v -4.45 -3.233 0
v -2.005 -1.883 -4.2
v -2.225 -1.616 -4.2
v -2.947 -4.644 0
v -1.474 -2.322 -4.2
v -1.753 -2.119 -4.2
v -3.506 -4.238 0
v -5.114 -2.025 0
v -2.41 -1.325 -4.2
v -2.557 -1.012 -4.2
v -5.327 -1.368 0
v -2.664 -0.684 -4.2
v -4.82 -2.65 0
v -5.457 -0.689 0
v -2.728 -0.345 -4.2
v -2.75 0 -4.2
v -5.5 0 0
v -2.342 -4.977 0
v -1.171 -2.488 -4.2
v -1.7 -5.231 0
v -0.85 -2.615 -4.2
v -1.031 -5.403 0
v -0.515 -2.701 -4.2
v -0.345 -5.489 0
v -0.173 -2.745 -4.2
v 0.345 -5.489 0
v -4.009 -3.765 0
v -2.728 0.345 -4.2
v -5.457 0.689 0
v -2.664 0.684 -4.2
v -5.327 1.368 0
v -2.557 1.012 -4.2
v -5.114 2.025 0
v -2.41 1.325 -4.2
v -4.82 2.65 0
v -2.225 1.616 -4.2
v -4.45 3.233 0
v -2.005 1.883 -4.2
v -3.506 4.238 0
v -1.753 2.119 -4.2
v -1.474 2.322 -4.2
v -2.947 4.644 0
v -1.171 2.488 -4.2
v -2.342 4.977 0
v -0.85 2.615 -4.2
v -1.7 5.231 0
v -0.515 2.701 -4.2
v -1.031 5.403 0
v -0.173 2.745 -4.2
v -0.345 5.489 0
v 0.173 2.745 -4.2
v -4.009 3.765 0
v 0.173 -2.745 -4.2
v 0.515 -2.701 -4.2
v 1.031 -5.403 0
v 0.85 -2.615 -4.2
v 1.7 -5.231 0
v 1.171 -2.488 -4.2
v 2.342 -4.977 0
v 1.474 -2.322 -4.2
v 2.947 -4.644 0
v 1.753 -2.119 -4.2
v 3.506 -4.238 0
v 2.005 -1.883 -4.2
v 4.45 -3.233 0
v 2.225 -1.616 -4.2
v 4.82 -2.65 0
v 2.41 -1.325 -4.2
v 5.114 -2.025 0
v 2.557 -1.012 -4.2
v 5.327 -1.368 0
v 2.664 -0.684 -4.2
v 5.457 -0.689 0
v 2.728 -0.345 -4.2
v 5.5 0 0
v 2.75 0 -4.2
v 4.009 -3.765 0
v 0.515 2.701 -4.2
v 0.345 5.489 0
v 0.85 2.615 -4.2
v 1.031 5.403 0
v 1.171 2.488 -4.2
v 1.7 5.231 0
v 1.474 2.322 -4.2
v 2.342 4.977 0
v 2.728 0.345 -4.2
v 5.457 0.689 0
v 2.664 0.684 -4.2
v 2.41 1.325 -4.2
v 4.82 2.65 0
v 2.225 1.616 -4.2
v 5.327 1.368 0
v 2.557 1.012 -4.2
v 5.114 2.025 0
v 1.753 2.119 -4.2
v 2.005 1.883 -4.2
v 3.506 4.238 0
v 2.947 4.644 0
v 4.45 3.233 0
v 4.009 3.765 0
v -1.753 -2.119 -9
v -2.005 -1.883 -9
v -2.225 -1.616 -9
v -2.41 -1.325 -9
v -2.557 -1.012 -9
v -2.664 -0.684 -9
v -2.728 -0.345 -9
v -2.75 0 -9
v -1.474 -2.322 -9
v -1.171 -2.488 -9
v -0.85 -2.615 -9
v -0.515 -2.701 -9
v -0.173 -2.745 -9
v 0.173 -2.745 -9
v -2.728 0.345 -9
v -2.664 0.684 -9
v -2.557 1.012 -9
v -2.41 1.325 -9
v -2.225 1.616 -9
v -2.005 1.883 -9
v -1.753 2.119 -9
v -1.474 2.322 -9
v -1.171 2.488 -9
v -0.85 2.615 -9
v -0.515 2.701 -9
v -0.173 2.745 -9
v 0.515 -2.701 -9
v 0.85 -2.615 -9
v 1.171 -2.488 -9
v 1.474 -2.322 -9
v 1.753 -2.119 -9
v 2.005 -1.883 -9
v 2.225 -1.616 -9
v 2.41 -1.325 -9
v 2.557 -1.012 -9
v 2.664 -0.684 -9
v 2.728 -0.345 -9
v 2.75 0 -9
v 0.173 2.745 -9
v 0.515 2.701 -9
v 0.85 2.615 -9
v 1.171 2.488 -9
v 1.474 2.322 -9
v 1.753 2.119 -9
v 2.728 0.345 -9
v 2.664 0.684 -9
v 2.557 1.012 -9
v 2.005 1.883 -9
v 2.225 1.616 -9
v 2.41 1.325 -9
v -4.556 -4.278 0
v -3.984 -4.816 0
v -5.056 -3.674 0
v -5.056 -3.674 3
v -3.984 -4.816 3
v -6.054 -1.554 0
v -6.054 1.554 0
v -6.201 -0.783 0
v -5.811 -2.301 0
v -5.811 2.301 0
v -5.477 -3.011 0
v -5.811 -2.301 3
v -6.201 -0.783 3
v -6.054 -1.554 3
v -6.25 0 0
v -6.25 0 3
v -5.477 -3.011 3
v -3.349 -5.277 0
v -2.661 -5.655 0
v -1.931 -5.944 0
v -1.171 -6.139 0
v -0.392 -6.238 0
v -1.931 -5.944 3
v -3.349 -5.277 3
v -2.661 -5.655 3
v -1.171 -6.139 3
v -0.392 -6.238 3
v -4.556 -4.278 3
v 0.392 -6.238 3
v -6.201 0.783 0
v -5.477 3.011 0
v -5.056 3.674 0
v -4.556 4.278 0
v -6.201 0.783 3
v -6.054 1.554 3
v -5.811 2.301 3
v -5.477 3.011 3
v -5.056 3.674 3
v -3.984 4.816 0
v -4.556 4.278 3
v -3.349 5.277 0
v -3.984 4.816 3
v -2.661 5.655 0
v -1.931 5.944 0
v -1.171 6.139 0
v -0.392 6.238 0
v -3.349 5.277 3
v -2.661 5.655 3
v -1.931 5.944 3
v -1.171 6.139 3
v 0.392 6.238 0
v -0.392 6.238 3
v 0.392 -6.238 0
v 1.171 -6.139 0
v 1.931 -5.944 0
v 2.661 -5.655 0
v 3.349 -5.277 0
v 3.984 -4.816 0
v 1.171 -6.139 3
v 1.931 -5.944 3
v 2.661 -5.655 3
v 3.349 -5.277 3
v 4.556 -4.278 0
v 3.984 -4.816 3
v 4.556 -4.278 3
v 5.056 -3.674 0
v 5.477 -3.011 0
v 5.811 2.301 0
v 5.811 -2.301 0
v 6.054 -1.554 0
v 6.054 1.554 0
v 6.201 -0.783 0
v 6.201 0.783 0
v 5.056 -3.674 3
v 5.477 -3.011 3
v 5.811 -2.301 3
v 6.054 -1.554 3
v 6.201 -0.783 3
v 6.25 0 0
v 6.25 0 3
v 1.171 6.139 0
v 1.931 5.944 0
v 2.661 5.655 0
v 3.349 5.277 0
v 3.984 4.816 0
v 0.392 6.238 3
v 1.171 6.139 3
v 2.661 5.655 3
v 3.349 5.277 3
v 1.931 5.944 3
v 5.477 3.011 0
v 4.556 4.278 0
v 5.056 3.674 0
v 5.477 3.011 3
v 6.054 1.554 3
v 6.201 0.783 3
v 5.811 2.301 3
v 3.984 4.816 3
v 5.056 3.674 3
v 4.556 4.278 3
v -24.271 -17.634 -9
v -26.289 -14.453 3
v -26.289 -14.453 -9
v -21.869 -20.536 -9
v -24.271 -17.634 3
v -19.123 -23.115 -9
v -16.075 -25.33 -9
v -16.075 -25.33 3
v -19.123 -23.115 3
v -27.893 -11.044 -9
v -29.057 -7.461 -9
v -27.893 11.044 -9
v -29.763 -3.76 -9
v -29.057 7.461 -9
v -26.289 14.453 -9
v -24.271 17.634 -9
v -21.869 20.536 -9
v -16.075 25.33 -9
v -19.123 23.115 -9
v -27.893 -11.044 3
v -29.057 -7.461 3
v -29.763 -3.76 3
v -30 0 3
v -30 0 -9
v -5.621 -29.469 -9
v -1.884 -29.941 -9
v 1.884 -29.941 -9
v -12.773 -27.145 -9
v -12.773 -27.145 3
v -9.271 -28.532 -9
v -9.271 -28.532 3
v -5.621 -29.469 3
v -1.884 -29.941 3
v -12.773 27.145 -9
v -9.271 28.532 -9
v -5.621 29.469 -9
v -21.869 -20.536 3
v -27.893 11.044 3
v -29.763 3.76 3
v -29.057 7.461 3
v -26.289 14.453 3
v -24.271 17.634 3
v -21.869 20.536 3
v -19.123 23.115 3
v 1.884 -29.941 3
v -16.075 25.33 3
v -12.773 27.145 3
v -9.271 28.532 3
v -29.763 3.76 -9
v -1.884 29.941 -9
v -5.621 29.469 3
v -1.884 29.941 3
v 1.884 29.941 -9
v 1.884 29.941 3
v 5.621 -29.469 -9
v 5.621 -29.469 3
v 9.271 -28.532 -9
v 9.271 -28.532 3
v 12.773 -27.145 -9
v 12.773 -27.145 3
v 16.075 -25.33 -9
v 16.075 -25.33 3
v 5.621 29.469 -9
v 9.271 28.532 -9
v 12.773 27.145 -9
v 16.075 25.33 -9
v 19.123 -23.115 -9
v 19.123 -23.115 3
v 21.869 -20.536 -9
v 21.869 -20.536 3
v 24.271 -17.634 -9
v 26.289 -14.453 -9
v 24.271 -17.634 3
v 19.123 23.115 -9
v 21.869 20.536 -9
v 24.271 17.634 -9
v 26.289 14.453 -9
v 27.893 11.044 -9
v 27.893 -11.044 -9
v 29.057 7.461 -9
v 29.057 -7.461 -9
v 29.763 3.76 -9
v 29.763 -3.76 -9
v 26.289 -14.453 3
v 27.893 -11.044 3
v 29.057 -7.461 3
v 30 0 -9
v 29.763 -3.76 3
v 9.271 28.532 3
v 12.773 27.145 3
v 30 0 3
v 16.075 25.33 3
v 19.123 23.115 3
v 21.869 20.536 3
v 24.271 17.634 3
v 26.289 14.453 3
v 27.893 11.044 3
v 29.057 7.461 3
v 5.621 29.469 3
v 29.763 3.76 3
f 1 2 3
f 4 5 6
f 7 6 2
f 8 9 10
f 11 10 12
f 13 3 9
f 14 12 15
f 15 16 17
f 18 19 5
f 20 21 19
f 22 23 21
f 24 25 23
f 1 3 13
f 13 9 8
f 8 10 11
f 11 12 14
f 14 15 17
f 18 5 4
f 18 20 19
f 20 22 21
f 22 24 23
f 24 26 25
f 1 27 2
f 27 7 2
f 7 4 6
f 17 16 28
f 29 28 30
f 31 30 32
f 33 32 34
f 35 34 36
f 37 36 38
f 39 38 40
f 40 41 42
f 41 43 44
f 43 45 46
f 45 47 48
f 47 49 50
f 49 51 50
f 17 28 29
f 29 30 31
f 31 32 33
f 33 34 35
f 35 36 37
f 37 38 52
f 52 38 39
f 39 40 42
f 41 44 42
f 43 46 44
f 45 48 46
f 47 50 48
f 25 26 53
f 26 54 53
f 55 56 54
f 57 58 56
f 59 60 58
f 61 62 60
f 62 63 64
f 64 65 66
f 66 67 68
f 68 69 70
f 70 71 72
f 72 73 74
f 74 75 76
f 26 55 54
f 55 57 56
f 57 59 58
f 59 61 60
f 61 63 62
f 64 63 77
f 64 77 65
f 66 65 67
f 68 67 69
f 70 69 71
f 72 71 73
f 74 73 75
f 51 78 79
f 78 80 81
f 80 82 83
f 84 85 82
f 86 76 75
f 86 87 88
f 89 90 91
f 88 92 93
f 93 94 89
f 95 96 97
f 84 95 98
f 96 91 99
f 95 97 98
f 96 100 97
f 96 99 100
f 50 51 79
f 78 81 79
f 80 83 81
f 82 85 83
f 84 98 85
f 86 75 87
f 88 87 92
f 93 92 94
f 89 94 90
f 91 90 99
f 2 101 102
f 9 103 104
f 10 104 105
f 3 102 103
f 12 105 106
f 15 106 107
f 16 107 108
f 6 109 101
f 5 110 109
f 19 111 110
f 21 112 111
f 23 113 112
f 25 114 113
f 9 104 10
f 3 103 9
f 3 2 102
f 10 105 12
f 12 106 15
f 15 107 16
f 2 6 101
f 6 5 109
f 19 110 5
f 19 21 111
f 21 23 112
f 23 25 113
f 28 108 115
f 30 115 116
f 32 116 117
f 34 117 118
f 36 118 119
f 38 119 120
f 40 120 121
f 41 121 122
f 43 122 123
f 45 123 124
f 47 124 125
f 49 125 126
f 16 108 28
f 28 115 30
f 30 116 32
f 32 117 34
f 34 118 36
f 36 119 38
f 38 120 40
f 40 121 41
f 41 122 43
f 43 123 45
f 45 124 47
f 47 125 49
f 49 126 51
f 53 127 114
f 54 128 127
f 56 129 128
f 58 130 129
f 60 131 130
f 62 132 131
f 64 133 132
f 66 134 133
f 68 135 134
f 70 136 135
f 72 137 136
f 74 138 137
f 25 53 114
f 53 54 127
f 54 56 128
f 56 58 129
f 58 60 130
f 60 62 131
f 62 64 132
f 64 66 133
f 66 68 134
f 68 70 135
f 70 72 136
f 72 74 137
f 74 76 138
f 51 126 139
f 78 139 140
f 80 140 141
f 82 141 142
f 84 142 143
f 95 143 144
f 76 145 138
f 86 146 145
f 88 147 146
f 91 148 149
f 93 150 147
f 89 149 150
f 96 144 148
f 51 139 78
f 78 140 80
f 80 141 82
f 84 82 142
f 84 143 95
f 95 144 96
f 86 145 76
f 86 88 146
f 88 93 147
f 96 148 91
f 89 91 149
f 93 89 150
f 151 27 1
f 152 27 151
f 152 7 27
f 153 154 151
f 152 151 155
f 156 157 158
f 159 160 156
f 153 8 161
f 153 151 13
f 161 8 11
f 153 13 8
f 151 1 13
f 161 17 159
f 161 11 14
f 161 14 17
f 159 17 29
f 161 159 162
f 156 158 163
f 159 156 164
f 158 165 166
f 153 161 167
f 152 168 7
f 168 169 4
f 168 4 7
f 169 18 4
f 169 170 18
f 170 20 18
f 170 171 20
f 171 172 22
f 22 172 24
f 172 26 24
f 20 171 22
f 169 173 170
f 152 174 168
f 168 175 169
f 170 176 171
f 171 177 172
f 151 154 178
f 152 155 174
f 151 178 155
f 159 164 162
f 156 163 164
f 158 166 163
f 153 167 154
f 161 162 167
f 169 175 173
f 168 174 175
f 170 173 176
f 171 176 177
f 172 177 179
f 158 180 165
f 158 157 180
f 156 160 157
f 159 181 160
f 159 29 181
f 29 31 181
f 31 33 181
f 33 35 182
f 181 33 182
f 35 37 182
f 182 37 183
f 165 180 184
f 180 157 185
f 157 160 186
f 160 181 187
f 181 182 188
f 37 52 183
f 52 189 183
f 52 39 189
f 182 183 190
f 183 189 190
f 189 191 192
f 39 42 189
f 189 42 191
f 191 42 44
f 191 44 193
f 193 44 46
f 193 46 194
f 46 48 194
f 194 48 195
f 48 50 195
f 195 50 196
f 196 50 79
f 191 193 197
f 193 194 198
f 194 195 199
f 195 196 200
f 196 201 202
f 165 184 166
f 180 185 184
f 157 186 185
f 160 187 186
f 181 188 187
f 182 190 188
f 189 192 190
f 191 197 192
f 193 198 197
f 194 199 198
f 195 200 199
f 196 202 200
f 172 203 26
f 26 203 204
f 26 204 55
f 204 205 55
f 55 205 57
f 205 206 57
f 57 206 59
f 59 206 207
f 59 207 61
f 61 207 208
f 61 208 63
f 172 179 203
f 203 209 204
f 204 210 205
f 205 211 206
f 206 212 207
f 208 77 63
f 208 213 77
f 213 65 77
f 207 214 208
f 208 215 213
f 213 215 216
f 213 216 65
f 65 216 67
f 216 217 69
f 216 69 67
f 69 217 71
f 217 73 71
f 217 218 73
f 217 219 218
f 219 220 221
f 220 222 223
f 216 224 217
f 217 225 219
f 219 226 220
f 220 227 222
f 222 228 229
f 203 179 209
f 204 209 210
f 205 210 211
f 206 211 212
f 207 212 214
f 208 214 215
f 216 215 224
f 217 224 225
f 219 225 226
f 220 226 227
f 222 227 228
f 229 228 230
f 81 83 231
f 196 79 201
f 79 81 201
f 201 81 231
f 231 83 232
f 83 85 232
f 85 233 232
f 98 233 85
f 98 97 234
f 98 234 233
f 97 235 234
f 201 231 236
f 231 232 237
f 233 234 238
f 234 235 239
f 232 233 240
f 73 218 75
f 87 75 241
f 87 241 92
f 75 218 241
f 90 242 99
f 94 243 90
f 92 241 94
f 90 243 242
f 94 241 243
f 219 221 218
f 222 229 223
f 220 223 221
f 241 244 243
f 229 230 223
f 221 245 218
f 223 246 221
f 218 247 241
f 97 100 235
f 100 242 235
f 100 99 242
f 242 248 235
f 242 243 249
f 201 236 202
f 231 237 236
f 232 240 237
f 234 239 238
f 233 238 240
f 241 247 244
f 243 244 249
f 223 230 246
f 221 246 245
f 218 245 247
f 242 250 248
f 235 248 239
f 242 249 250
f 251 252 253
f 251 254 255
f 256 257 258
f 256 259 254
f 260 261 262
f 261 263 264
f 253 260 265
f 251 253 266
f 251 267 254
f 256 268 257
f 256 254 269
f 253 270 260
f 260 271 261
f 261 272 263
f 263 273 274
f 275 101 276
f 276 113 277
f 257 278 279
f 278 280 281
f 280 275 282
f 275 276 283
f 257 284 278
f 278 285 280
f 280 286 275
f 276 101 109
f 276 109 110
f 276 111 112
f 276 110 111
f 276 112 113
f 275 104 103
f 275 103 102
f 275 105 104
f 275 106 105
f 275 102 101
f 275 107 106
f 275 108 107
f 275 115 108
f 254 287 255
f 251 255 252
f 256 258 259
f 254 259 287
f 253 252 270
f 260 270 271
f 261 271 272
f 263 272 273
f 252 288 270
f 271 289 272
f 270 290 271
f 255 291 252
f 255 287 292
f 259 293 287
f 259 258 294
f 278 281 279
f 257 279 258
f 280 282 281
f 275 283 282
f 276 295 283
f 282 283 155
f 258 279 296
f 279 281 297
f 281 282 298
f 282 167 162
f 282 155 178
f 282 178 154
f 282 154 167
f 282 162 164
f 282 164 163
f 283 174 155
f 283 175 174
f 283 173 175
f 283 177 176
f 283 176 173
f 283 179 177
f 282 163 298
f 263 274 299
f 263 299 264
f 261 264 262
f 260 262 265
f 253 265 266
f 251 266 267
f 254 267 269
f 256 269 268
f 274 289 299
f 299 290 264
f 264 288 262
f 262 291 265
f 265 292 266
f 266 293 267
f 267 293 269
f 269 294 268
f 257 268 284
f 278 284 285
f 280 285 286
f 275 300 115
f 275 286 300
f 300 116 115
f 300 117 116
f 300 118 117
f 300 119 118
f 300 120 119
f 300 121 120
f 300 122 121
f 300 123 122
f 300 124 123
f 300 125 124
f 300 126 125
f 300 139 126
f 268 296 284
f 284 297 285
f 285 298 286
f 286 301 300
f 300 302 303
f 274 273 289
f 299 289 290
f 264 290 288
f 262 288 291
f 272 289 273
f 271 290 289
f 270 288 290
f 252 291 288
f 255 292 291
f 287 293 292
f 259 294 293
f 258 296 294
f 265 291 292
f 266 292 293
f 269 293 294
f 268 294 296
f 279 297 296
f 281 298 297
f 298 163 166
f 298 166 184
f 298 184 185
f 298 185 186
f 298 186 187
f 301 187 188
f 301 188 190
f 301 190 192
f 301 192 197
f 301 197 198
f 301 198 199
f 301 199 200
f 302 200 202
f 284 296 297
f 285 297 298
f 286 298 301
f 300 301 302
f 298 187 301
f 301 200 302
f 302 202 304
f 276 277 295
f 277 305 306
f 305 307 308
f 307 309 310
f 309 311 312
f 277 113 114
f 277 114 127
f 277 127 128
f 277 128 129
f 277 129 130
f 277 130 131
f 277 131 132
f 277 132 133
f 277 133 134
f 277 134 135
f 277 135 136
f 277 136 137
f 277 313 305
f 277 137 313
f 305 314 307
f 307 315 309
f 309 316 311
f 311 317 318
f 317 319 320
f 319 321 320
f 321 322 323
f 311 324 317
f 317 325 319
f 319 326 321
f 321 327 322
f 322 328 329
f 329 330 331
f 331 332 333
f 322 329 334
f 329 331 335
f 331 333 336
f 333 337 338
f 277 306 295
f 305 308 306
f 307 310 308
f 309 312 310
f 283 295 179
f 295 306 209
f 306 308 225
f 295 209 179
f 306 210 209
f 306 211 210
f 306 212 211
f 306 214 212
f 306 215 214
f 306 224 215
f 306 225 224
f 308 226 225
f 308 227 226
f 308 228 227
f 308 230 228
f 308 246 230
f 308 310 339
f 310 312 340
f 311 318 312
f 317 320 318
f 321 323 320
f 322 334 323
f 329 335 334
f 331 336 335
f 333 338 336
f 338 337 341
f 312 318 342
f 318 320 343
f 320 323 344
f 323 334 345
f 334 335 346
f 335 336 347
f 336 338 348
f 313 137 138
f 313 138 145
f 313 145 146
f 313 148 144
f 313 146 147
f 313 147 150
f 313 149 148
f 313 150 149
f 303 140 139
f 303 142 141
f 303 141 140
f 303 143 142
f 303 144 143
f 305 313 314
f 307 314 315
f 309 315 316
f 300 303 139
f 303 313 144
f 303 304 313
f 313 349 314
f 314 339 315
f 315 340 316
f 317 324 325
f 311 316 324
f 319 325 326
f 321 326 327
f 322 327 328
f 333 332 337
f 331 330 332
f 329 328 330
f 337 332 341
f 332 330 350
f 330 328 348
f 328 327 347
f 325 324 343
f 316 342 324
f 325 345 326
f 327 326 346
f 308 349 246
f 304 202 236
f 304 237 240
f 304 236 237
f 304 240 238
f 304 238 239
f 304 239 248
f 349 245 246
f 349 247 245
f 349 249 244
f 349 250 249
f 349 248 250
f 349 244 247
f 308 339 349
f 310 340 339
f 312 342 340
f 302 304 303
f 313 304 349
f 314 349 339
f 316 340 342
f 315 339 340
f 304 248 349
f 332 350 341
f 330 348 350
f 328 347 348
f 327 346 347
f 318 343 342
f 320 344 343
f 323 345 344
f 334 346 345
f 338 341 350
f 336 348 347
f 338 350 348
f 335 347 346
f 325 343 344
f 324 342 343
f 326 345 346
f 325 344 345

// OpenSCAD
$fn = 50;

difference() {
	union() {
		translate(v = [0, 0, -9.0]) {
			cylinder(h = 12, r = 30.0);
		}
	}
	union() {
		translate(v = [0, 0, 0]) {
			rotate(a = [0, 0, 0]) {
				difference() {
					union() {
						translate(v = [0, 0, -12.0]) {
							cylinder(h = 12, r = 2.25);
						}
						translate(v = [0, 0, -4.2]) {
							cylinder(h = 4.2, r1 = 2.75, r2 = 5.5);
						}
						translate(v = [0, 0, -12.0]) {
							cylinder(h = 12, r = 2.75);
						}
						translate(v = [0, 0, -12.0]) {
							cylinder(h = 12, r = 2.25);
						}
					}
					union();
				}
			}
		}
		#cylinder(h = 3, r = 6.25);
	}
}
